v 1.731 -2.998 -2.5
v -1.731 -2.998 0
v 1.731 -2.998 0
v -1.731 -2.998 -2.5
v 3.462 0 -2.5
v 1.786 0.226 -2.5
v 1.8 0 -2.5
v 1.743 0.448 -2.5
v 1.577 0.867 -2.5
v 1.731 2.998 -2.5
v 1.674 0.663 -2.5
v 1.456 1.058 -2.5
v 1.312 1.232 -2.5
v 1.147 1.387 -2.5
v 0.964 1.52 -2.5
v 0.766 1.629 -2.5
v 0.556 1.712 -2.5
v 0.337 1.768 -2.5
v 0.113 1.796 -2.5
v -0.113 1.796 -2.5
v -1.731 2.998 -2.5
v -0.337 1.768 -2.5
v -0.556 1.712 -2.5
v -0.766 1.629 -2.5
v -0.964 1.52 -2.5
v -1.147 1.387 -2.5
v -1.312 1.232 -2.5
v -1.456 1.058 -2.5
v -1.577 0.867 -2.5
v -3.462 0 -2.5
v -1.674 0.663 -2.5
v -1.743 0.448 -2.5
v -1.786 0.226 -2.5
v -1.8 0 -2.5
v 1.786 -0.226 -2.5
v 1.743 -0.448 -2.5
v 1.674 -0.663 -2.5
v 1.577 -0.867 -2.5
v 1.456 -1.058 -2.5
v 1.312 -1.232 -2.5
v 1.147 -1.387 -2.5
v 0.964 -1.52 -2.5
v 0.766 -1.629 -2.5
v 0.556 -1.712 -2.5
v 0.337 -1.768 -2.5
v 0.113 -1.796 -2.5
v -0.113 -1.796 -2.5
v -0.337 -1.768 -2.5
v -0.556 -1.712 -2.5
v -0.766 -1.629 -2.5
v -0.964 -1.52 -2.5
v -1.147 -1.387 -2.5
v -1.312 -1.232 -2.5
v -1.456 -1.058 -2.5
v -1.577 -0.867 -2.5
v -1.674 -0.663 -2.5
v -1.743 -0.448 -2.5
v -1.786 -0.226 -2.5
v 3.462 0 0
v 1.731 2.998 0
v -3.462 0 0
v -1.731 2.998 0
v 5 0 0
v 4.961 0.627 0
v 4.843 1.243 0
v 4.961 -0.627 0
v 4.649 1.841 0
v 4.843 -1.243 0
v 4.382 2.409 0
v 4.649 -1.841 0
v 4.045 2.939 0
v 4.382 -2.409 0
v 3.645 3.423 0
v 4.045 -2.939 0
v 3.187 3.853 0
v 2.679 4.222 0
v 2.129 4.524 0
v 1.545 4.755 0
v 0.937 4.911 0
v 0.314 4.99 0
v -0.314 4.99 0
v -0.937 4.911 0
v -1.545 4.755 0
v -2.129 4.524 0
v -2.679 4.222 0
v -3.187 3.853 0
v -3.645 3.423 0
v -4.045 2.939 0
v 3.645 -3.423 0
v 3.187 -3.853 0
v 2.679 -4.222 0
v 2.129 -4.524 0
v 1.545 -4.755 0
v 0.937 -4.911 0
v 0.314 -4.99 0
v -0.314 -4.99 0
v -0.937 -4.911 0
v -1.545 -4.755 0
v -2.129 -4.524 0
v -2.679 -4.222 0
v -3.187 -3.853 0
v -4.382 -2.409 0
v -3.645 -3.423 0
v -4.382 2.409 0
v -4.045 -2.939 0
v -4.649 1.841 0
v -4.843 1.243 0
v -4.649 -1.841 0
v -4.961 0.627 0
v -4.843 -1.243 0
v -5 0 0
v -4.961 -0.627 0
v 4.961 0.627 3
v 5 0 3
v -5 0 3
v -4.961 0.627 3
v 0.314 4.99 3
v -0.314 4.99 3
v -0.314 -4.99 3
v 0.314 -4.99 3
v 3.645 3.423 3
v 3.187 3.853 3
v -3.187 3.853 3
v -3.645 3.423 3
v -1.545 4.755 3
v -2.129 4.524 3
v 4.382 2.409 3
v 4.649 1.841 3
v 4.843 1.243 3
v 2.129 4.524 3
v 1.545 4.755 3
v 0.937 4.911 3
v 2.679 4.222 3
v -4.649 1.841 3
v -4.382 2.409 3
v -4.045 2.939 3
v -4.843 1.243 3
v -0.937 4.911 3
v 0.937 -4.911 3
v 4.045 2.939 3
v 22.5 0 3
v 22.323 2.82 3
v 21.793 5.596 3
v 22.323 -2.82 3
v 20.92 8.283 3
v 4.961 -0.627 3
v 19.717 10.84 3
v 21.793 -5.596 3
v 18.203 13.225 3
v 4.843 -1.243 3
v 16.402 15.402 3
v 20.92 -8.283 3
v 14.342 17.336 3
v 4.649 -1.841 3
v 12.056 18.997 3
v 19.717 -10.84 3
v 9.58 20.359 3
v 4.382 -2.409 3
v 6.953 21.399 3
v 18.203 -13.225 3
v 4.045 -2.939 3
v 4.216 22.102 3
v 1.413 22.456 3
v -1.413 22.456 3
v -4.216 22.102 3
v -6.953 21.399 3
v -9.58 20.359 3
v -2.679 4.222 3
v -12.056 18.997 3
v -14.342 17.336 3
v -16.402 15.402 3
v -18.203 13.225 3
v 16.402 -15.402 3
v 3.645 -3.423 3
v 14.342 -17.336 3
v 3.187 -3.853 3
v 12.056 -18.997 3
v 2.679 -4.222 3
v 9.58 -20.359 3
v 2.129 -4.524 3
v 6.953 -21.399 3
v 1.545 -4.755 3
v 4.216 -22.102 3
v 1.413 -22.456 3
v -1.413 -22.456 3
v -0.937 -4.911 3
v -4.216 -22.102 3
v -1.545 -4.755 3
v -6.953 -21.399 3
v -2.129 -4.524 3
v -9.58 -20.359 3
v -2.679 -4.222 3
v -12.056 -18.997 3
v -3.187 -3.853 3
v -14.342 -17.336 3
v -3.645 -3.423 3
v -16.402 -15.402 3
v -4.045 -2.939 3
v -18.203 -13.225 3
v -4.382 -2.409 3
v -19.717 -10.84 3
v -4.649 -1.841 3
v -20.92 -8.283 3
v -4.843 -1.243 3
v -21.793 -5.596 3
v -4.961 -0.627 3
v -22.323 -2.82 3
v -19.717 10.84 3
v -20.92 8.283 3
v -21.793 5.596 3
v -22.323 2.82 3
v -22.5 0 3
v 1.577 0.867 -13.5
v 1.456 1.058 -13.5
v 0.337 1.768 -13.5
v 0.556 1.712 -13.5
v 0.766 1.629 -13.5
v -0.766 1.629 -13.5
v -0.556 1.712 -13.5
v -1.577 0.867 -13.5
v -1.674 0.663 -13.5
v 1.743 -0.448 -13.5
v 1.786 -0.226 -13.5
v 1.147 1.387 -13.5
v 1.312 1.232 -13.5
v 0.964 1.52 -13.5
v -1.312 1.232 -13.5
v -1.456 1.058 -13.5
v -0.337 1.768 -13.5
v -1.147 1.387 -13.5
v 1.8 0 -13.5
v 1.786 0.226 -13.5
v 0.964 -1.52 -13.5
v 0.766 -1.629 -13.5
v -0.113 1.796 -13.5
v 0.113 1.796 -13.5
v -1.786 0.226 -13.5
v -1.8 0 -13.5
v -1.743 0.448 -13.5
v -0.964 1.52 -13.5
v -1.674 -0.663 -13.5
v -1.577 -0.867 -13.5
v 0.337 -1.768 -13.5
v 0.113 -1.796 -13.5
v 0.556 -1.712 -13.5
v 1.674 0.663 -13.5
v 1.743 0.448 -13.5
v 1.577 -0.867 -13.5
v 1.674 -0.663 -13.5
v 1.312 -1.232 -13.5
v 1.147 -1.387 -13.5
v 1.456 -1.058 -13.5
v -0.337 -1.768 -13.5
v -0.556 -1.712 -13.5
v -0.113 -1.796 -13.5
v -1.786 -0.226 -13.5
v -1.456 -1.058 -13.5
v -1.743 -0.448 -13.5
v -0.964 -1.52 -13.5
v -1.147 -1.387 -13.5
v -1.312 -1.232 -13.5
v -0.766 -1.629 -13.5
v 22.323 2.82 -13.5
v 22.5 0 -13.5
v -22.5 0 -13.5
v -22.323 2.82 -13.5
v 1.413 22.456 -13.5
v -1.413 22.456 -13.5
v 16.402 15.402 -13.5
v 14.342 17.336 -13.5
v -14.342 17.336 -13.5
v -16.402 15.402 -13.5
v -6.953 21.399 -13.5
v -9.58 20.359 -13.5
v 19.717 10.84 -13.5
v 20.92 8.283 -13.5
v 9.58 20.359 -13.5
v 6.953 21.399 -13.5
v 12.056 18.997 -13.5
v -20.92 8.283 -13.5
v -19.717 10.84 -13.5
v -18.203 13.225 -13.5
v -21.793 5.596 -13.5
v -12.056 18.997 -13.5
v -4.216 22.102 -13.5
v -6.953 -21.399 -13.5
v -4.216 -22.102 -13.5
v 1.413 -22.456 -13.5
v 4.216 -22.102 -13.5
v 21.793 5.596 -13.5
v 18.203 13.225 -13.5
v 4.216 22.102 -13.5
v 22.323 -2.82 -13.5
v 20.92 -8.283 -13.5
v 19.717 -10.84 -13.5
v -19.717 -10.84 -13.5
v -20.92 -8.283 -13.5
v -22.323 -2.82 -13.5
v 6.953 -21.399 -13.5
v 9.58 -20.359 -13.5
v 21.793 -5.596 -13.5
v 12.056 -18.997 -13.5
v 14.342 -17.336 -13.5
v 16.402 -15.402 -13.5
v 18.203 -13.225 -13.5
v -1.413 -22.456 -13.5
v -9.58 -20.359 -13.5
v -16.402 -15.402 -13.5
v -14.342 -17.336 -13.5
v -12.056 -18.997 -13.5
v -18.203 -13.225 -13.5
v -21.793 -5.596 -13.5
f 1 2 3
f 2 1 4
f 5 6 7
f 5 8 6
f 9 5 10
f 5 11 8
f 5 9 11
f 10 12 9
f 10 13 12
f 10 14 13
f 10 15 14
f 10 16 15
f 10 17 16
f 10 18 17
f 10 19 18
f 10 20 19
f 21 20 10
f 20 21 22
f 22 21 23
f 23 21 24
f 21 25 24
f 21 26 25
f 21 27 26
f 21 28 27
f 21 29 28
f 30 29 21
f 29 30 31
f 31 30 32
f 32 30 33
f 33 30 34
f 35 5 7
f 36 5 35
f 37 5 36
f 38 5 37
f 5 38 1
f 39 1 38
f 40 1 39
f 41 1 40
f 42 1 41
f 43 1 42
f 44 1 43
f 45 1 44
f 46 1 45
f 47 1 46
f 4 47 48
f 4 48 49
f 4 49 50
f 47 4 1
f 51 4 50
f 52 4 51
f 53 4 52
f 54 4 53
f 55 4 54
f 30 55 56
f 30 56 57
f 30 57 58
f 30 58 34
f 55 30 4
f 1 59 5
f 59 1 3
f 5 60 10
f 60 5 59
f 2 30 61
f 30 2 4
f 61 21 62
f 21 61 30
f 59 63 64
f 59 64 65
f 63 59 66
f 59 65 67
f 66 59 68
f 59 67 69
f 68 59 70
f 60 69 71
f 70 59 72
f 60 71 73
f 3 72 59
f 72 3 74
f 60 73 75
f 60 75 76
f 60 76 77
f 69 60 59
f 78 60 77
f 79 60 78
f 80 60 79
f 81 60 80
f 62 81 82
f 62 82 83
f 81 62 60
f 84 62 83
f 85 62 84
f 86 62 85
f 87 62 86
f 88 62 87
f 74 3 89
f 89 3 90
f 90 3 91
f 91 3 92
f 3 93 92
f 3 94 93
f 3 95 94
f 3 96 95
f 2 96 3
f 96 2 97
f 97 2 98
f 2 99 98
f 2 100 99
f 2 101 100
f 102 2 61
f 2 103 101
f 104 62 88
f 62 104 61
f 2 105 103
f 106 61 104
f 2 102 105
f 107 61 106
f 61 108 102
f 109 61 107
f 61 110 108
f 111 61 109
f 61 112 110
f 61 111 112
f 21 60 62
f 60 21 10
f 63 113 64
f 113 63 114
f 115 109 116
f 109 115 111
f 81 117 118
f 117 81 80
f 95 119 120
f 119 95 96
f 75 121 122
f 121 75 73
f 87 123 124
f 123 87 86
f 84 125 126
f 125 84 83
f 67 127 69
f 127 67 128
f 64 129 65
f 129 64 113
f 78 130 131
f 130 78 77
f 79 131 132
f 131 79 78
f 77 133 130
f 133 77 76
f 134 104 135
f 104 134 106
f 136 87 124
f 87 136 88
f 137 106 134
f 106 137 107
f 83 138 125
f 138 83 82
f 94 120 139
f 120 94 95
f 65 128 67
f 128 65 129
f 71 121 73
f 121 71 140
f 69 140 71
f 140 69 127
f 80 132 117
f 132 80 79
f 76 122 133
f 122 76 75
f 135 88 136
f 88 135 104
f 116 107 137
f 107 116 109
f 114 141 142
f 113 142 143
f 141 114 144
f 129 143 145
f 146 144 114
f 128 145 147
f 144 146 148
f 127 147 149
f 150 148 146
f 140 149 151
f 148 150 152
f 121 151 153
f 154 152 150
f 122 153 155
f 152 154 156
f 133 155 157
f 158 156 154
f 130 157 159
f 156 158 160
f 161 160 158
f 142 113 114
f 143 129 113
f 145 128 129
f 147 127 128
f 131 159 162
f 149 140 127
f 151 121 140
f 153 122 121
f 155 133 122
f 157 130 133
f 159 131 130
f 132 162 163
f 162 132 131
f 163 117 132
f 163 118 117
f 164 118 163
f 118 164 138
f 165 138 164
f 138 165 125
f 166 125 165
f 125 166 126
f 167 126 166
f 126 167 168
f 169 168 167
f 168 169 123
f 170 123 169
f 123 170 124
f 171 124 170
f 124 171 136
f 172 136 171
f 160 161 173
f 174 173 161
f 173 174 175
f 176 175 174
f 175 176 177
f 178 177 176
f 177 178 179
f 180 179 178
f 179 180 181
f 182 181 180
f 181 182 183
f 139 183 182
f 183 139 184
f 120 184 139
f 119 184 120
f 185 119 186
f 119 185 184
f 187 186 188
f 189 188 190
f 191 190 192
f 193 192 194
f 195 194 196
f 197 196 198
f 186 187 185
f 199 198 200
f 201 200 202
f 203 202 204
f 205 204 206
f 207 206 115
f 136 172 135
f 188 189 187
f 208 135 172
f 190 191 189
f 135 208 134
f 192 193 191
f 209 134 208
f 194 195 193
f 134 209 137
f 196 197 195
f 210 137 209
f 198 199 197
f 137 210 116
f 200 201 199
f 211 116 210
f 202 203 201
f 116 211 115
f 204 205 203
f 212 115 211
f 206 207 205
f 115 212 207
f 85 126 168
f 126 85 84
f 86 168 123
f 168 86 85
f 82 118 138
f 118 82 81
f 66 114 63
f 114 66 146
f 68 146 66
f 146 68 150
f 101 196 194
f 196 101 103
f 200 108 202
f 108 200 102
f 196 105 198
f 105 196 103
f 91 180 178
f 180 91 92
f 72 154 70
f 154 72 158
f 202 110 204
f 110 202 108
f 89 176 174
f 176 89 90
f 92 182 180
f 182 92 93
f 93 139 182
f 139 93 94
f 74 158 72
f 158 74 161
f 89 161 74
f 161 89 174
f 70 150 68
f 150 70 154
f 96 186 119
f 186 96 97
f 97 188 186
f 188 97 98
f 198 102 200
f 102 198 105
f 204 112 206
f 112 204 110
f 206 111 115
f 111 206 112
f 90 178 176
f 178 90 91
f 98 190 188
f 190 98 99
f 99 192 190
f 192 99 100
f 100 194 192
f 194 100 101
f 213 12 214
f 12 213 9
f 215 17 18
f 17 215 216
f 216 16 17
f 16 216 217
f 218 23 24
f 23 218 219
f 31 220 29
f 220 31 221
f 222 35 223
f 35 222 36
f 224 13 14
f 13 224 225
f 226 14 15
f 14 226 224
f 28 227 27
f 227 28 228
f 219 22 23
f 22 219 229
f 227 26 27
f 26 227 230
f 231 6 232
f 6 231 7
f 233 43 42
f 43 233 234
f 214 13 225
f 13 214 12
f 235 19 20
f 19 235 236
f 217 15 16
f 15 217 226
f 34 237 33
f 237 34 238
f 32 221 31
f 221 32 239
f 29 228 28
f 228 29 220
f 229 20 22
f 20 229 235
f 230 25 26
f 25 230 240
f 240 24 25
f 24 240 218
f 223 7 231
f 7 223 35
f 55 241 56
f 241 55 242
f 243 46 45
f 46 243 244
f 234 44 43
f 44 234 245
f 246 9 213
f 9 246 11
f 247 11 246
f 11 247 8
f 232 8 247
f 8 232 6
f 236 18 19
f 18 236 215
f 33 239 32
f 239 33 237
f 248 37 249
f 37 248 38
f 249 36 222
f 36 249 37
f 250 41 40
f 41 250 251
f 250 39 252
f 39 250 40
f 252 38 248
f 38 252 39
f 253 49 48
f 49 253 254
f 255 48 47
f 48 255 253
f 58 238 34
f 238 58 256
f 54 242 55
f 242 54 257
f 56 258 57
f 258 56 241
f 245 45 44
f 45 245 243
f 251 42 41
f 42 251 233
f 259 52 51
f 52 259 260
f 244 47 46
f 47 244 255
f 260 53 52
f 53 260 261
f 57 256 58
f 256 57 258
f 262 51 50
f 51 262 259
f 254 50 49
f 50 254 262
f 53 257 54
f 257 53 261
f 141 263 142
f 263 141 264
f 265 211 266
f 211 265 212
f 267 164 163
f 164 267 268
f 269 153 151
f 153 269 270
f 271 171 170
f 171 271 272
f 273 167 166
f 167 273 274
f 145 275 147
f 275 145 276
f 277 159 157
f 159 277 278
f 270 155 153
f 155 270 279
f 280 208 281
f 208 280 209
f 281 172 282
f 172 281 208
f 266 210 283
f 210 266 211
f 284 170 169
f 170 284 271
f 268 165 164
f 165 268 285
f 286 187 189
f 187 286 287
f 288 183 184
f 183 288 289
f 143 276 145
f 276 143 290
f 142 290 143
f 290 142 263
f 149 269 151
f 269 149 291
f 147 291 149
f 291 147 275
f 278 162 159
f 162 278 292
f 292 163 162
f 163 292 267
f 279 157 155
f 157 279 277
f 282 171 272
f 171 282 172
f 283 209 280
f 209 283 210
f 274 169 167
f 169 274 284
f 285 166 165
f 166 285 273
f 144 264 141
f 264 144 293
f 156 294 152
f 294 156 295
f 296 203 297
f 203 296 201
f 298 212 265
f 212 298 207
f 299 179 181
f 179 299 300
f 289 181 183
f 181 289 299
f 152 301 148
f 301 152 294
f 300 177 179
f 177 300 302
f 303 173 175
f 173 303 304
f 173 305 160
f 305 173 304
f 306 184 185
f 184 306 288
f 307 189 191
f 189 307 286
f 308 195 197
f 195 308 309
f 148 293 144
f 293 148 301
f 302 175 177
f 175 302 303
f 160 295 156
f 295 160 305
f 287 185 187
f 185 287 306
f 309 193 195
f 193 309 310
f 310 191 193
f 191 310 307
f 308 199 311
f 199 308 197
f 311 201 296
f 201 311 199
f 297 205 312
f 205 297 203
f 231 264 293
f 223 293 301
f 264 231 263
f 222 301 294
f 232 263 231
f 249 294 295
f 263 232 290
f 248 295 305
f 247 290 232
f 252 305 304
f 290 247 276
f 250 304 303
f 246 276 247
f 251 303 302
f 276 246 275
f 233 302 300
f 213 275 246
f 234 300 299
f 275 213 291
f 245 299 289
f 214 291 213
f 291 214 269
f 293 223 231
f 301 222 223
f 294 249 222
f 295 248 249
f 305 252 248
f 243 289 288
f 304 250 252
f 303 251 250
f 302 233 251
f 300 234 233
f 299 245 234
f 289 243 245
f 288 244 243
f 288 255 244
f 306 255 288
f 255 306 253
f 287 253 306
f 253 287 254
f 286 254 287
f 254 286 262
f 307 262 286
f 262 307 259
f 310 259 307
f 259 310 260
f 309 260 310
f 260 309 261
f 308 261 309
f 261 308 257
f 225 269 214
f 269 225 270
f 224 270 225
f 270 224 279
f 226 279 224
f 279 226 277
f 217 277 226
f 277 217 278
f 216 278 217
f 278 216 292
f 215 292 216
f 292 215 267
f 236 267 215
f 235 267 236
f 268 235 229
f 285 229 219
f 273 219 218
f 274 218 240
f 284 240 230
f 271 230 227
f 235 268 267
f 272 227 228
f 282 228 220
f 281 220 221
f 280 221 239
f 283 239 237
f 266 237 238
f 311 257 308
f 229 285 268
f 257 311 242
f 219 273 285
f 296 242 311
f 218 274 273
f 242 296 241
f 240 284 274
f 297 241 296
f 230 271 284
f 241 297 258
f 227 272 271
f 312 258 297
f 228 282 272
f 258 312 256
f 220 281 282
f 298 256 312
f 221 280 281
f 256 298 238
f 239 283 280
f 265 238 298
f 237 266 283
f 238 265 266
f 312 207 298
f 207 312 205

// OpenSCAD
$fn = 50;


difference() {
	union() {
		translate(v = [0, 0, -13.5000000000]) {
			cylinder(h = 16.5000000000, r = 22.5000000000);
		}
	}
	union() {
		translate(v = [0, 0, 0]) {
			rotate(a = [0, 0, 0]) {
				difference() {
					union() {
						translate(v = [0, 0, -2.5000000000]) {
							linear_extrude(height = 2.5000000000) {
								polygon(points = [[3.4620000000, 0.0000000000], [1.7310000000, 2.9981799479], [-1.7310000000, 2.9981799479], [-3.4620000000, 0.0000000000], [-1.7310000000, -2.9981799479], [1.7310000000, -2.9981799479]]);
							}
						}
					}
					union();
				}
			}
		}
		#cylinder(h = 3, r = 5.0000000000);
		#translate(v = [0, 0, -100.0000000000]) {
			cylinder(h = 200, r = 1.8000000000);
		}
	}
}
